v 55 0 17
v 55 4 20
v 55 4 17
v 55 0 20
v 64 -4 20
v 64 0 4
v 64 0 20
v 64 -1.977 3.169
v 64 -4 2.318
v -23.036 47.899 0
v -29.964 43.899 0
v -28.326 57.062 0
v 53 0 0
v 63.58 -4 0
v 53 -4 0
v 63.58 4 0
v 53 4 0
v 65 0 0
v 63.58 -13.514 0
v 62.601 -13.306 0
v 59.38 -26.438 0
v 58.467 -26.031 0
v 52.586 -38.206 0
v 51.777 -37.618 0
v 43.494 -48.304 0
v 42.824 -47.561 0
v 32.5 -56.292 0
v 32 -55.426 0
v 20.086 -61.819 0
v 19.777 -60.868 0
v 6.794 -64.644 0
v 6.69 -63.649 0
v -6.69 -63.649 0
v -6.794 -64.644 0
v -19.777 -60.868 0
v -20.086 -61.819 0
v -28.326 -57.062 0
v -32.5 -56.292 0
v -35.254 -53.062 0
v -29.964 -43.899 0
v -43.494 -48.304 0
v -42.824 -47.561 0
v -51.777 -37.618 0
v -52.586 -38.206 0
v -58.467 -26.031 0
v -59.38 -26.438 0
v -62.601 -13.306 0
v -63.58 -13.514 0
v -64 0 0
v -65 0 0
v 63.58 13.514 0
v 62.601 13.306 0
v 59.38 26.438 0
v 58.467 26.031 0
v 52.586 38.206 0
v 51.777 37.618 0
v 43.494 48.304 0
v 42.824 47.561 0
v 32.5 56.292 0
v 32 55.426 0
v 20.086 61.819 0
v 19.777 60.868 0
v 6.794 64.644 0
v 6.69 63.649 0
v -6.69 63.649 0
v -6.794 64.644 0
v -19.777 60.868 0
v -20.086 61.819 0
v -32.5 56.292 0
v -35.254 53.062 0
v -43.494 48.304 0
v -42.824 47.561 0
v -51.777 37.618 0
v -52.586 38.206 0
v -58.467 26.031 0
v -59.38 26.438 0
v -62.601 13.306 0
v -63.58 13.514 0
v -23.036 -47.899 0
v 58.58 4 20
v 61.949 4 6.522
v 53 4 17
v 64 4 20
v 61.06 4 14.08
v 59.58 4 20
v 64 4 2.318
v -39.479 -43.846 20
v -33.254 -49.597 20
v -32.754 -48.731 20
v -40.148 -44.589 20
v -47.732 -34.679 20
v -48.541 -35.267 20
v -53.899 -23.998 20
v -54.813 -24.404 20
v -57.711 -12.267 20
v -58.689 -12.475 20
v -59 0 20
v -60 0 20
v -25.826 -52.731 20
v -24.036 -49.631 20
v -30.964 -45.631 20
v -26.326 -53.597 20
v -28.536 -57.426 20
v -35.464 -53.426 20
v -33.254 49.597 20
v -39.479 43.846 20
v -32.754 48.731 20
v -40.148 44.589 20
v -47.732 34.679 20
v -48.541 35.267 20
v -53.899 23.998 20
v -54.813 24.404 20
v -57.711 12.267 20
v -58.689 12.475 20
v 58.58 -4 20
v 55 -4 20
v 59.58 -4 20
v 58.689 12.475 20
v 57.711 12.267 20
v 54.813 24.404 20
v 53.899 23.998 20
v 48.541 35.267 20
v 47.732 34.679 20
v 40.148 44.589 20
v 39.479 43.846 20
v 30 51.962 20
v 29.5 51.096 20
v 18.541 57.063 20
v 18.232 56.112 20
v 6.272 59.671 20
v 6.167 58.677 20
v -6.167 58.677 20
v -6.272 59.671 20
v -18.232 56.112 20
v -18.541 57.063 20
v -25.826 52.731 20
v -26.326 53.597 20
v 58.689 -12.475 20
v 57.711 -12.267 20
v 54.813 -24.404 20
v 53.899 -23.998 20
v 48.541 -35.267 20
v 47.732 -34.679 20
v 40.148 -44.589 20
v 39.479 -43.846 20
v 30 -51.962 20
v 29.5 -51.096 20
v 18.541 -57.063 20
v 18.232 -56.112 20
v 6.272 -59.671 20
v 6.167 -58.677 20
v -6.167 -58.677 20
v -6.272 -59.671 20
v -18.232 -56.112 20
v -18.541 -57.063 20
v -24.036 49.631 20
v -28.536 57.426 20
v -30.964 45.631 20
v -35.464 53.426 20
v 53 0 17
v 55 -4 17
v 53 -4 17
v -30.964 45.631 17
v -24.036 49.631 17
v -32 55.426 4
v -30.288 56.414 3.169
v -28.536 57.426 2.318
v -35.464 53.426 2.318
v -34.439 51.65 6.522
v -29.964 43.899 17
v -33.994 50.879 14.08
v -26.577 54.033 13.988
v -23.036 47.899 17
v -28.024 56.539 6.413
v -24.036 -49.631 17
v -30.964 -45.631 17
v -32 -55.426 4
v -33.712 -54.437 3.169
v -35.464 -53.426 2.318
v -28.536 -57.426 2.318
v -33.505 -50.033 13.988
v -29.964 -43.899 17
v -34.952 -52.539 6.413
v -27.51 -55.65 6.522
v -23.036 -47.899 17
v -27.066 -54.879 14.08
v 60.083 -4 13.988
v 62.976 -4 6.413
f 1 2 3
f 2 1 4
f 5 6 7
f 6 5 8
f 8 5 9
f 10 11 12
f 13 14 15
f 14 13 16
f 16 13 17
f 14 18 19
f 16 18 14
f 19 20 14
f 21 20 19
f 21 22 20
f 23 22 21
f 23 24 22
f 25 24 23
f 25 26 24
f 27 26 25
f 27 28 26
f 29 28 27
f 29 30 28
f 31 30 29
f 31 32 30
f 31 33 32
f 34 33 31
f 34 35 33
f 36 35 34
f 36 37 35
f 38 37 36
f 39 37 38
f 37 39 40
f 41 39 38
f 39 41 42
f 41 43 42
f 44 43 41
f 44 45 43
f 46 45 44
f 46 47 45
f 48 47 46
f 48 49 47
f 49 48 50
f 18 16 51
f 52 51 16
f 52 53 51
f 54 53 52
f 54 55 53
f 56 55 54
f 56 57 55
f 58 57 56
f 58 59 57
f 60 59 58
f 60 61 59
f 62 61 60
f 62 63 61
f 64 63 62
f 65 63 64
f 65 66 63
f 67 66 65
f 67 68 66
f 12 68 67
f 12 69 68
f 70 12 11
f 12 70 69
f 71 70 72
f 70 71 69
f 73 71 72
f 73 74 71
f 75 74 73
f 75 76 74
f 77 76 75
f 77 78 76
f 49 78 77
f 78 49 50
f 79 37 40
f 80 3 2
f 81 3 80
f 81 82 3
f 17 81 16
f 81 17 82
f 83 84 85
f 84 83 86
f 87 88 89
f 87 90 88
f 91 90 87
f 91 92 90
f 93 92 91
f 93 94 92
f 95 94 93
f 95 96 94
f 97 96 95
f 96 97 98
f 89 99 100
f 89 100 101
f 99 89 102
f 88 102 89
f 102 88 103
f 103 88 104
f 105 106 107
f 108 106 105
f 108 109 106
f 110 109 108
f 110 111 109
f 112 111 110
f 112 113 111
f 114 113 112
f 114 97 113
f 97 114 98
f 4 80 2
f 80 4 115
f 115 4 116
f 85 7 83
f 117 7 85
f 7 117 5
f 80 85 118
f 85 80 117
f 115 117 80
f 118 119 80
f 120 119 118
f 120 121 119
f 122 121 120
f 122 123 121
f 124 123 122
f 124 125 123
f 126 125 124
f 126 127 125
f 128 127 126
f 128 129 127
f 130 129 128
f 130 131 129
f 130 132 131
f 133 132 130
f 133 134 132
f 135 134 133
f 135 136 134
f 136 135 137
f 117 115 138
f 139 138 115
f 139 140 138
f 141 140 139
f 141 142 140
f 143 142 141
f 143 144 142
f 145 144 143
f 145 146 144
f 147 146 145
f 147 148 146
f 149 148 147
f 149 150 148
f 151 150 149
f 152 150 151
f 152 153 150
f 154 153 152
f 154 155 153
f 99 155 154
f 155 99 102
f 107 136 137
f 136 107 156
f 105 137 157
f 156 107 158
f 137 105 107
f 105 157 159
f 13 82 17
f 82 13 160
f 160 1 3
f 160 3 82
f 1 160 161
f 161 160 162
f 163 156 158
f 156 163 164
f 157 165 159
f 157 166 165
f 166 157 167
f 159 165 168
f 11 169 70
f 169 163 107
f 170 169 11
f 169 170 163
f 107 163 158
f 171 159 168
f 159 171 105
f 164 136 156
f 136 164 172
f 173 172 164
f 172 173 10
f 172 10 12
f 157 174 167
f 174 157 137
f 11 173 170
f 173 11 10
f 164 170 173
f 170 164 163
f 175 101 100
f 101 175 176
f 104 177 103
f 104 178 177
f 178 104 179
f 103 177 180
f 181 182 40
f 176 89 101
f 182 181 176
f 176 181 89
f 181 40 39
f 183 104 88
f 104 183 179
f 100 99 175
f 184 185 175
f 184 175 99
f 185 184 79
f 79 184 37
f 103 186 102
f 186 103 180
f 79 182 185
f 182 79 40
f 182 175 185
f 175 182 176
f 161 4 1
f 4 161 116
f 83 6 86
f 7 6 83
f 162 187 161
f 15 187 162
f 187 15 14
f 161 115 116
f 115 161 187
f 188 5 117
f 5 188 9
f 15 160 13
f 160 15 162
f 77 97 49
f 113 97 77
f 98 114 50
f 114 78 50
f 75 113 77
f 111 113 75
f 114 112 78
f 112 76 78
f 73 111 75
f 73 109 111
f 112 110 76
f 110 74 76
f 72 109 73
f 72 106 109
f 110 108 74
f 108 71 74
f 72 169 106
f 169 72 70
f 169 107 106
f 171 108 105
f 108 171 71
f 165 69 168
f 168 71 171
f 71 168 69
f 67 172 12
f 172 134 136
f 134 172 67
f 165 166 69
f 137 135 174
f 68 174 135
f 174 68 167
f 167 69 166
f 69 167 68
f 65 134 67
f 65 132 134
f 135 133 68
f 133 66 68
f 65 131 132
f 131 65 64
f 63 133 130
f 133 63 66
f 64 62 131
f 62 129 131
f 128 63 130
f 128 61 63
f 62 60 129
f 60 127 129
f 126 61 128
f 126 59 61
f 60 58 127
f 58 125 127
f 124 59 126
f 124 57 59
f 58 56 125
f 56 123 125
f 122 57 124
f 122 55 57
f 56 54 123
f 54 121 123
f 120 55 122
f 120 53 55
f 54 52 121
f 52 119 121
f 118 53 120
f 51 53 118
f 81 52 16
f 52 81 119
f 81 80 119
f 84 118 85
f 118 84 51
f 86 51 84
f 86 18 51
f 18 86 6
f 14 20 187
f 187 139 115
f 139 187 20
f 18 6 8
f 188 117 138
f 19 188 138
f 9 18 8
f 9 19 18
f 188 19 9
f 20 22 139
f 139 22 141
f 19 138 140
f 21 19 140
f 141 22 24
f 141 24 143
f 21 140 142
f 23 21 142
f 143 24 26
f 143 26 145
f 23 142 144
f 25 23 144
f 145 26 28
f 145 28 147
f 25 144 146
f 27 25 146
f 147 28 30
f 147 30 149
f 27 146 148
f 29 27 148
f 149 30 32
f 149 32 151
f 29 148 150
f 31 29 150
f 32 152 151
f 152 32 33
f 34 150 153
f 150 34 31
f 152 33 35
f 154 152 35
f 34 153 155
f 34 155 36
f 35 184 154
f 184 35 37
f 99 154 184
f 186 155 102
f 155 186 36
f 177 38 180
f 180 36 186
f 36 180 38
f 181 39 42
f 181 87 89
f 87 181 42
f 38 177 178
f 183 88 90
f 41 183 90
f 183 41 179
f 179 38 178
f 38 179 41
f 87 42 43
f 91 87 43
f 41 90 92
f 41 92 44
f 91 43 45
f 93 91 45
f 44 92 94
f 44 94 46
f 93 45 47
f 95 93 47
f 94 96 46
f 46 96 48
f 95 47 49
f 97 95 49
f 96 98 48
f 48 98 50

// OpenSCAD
module radiationshield(sukima = 15){
//放射シールド
rotate_extrude()

polygon( points=[
   
//[55,20+sukima],
[60,20],
[65,0],
[64,0],
[59,20],
//[54,20+sukima],

] );
};

translate ([0,0,0])radiationshield(15);

module radiationsheild_boss() {
for ( i = [0 : 3] ){
rotate ([0,0,i*120]) {
linear_extrude(height = 20, center = false, convexity = 10, twist = 0)
 polygon( points=[
[64,4],
[64,-4],
[55,-4],
[55,4],
    ]);
linear_extrude(height = 17, center = false, convexity = 10, twist = 0)
 polygon( points=[
[55,4],
[55,-4],
[53,-4],
[53,4],
    ]);
}
}
};

radiationsheild_boss();
